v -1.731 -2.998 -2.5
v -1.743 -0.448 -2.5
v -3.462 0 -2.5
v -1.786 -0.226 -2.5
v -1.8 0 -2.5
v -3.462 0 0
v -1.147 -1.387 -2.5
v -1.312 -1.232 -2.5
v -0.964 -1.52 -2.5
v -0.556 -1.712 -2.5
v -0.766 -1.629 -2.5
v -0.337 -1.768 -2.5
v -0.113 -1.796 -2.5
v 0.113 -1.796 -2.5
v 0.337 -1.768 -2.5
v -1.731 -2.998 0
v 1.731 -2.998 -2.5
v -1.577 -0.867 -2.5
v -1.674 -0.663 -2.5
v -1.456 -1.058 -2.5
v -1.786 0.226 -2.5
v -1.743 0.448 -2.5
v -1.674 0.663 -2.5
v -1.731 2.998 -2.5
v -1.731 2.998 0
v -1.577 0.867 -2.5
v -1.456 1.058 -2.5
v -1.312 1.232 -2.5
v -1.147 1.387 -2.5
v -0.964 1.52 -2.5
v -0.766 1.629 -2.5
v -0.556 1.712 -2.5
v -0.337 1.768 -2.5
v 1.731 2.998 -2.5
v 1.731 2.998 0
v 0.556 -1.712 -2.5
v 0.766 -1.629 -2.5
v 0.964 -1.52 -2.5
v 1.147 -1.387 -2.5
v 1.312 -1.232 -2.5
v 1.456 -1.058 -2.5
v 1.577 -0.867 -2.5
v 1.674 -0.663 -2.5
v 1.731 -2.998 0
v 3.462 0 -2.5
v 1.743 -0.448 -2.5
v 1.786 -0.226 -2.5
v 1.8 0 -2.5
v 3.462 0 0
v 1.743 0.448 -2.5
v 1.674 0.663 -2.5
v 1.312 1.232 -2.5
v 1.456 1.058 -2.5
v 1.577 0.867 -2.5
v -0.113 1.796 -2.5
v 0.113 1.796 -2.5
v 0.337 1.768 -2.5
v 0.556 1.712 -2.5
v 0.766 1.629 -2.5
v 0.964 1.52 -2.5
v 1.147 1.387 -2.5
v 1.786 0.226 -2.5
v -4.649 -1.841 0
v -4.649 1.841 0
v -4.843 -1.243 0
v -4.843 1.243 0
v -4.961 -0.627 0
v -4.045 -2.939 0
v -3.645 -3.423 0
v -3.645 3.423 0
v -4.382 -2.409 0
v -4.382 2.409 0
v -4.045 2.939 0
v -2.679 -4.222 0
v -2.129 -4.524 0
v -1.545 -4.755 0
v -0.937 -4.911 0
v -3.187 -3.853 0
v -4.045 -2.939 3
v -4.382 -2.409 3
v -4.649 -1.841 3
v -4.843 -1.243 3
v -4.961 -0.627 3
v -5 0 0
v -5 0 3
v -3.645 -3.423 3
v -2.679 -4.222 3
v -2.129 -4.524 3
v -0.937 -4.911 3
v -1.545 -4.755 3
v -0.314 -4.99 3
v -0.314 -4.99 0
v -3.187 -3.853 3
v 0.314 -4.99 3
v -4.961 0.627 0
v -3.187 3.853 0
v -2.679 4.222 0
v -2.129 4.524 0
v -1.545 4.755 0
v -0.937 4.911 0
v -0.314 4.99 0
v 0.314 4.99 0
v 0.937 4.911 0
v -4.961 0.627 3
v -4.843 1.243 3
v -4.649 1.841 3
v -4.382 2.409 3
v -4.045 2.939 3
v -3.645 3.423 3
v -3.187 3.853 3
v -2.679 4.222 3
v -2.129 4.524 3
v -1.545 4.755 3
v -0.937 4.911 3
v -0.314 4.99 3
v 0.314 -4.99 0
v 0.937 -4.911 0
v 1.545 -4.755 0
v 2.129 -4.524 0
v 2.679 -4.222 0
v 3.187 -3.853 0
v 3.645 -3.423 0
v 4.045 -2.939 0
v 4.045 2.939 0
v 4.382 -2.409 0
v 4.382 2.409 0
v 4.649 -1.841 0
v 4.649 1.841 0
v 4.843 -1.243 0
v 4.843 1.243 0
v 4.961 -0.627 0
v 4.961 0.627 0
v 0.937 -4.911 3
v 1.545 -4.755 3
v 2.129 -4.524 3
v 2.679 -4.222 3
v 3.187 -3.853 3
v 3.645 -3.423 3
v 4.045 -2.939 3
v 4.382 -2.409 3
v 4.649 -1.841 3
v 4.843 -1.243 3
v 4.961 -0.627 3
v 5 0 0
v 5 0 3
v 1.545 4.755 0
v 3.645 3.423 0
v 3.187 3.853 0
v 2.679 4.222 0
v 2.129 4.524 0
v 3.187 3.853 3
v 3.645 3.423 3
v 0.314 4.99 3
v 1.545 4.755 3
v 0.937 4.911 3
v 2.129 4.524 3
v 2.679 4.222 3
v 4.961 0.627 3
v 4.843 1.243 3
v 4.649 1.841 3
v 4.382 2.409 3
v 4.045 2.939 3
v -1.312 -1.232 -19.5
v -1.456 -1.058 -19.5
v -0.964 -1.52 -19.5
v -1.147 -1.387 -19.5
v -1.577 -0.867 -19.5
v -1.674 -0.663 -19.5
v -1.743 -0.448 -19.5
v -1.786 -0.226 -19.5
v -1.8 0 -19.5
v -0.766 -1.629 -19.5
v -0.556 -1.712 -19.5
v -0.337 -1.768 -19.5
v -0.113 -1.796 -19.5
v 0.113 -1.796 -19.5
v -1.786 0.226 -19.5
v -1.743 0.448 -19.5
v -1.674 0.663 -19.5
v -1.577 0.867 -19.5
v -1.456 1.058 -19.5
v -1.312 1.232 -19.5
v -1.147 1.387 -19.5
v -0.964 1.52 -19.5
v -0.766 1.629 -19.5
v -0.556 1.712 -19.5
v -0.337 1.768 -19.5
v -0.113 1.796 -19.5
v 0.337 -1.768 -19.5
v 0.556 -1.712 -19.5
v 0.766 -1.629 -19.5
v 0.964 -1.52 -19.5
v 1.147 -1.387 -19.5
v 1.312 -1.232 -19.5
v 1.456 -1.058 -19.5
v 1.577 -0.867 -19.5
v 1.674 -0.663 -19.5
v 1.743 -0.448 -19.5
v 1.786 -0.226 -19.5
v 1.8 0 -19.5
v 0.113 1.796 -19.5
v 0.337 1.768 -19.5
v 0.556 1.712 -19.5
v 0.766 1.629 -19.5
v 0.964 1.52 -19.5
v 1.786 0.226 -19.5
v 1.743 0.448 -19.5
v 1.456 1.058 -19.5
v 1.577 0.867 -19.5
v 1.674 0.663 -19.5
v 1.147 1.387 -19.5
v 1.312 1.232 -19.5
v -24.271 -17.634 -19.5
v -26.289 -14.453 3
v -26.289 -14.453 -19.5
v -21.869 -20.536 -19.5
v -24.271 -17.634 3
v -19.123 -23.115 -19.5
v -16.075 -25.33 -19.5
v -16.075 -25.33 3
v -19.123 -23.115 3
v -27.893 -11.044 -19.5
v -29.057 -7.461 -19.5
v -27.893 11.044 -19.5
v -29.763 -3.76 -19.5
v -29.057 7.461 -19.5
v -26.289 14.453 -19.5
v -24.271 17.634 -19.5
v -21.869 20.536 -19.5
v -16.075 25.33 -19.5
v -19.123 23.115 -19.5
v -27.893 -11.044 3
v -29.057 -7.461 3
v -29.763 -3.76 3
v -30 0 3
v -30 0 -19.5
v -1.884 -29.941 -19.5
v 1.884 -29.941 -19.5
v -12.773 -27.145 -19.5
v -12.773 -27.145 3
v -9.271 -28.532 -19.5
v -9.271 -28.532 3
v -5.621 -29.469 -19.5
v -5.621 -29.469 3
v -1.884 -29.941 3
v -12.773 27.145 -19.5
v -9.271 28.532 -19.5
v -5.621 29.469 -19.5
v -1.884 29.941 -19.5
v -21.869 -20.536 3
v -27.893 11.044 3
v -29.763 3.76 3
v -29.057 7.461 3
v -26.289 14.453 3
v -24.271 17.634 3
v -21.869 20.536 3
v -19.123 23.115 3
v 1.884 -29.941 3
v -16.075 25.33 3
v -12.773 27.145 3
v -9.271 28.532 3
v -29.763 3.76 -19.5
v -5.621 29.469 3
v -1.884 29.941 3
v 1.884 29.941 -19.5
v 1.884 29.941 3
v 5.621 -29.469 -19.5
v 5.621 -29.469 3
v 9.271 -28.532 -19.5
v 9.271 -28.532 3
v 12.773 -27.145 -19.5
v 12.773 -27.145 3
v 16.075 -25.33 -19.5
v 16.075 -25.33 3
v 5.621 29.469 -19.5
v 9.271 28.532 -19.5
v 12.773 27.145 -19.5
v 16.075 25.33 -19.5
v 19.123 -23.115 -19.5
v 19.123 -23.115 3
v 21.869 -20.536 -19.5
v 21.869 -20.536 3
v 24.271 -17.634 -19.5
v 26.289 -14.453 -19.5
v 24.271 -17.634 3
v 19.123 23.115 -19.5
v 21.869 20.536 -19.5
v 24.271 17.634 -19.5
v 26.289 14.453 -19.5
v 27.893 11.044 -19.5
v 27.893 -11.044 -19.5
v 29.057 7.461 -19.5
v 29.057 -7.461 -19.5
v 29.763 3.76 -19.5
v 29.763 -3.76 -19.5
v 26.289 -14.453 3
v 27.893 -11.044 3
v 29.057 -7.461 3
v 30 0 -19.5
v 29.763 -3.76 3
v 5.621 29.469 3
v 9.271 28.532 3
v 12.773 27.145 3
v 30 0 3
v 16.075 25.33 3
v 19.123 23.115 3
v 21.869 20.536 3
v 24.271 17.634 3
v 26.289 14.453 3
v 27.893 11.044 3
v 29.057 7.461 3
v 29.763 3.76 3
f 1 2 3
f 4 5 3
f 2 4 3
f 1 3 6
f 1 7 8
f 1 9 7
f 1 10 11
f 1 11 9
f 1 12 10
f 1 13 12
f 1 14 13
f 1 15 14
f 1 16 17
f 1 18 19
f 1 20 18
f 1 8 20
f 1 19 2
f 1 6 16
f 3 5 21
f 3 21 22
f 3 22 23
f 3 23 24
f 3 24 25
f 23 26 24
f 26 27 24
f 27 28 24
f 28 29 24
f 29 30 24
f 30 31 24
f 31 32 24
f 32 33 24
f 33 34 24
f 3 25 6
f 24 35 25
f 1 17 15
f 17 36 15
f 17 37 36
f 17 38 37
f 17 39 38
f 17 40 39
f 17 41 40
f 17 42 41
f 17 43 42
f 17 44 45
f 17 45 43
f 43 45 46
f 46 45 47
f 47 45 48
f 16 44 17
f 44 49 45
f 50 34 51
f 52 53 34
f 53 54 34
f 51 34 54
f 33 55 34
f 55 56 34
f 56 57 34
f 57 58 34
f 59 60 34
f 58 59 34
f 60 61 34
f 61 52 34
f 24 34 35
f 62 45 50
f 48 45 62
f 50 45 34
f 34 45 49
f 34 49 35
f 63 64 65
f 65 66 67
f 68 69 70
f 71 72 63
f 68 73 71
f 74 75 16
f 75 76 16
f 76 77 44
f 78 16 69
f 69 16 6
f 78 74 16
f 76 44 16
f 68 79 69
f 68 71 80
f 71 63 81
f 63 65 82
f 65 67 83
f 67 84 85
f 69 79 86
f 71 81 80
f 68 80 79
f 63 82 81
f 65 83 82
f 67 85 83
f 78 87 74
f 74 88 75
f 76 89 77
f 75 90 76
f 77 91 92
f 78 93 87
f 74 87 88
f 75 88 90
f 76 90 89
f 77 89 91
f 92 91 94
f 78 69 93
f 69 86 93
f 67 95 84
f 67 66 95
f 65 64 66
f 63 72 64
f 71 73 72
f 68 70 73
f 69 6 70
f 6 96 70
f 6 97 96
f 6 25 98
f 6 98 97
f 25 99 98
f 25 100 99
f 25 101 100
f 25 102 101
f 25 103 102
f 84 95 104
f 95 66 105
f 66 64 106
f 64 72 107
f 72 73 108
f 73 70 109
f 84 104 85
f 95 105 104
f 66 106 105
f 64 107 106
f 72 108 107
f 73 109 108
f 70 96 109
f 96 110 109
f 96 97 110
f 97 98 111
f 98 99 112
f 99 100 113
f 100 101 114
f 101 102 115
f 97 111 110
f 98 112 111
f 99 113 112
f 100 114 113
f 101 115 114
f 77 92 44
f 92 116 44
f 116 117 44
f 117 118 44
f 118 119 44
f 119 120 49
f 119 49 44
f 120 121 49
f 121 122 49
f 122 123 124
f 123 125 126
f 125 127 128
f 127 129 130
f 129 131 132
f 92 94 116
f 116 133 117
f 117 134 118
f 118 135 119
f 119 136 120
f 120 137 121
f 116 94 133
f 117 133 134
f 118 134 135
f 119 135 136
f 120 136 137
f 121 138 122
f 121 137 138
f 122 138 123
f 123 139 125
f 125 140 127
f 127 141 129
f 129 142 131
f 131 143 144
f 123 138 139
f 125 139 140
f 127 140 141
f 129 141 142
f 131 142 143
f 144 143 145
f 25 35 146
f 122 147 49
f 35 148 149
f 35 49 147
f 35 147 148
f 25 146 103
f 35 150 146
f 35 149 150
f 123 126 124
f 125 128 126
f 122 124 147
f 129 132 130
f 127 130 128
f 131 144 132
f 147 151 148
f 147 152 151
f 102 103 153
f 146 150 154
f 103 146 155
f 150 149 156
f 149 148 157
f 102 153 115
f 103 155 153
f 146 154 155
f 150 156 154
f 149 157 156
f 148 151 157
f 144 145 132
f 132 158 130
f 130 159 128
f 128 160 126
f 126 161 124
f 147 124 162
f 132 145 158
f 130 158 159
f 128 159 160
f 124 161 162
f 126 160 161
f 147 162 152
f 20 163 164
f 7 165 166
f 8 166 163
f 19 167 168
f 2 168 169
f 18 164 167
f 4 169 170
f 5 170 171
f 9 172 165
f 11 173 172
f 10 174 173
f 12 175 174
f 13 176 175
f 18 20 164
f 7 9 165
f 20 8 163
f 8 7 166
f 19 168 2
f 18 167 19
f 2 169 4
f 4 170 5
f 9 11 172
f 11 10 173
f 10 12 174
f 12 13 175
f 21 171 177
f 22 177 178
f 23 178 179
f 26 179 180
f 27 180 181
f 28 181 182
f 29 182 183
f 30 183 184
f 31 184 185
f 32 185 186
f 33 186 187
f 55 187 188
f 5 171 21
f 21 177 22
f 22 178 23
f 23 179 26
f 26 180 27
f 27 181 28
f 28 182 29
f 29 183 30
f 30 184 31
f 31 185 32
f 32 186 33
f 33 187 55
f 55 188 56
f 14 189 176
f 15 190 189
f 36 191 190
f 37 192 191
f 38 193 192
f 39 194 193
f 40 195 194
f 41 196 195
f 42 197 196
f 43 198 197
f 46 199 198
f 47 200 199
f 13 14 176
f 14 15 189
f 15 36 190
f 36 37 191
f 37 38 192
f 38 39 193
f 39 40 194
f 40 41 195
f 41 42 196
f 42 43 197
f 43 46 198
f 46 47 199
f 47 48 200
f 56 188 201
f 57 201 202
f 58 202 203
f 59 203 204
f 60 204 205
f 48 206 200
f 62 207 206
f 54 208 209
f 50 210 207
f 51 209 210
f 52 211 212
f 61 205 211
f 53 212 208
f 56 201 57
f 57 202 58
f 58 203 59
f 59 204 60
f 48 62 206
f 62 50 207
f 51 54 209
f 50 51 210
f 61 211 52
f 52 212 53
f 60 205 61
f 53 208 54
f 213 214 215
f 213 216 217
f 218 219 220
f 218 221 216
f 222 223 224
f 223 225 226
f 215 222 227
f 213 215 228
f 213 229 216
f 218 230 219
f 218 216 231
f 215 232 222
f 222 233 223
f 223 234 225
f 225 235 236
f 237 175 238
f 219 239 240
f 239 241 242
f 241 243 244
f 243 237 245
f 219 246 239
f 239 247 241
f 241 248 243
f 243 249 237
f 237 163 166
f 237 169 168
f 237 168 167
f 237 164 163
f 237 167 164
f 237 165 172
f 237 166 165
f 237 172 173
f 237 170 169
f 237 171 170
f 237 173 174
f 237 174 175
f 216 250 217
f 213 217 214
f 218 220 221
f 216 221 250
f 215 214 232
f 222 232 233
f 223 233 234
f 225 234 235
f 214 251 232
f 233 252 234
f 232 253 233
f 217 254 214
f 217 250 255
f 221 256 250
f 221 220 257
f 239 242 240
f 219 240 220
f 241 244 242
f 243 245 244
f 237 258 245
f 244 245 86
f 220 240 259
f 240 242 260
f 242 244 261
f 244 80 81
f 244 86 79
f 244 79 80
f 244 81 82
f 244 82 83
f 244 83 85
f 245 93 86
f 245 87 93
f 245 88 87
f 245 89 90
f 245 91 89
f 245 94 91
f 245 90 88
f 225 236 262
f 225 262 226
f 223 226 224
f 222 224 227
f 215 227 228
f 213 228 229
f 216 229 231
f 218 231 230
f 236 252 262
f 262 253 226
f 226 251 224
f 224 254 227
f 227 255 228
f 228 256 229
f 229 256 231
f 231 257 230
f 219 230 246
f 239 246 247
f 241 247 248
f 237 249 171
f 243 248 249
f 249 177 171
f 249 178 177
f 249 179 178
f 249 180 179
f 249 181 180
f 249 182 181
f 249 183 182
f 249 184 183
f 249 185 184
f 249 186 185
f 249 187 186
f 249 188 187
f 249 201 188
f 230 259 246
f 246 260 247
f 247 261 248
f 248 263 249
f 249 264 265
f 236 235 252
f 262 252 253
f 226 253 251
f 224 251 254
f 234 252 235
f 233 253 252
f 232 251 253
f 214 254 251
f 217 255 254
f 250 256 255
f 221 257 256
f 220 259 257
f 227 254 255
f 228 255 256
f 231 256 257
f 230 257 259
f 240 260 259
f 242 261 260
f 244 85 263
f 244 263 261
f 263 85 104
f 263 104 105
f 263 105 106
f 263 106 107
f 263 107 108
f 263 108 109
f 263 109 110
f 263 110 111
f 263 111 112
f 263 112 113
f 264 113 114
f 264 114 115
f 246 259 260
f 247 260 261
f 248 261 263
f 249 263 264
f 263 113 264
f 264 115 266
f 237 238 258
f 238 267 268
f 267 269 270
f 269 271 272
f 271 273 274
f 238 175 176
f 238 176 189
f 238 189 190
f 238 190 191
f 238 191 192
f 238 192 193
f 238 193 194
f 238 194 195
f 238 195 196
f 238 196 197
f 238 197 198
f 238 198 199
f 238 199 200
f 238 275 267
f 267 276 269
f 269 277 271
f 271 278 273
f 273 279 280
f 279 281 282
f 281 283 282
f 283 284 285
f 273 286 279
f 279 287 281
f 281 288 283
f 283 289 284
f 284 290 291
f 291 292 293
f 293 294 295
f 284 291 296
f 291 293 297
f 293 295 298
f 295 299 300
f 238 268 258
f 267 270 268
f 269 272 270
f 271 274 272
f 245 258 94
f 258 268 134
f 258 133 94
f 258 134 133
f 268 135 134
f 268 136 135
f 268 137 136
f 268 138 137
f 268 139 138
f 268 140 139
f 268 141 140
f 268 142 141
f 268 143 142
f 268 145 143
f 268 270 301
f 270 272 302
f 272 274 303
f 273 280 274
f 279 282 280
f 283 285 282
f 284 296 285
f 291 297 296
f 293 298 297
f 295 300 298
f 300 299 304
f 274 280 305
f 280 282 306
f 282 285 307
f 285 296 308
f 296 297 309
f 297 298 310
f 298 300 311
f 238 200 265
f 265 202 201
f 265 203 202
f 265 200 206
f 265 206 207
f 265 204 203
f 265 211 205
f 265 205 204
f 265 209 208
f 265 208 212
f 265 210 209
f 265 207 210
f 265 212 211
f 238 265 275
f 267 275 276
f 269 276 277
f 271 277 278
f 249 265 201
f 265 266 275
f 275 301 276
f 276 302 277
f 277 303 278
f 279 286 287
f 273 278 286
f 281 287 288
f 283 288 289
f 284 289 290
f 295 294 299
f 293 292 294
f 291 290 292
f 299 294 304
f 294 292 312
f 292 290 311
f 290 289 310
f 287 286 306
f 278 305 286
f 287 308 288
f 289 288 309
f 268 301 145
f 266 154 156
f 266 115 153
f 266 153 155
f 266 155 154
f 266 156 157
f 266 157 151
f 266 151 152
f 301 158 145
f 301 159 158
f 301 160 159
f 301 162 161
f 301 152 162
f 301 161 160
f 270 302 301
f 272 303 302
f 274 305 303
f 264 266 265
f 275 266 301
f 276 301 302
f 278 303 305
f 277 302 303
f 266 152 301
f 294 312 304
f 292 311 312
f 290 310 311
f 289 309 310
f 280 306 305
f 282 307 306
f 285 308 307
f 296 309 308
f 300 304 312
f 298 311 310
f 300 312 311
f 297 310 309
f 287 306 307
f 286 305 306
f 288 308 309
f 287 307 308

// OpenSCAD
$fn = 50;


difference() {
	union() {
		translate(v = [0, 0, -19.5000000000]) {
			cylinder(h = 22.5000000000, r = 30.0000000000);
		}
	}
	union() {
		translate(v = [0, 0, 0]) {
			rotate(a = [0, 0, 0]) {
				difference() {
					union() {
						translate(v = [0, 0, -2.5000000000]) {
							linear_extrude(height = 2.5000000000) {
								polygon(points = [[3.4620000000, 0.0000000000], [1.7310000000, 2.9981799479], [-1.7310000000, 2.9981799479], [-3.4620000000, 0.0000000000], [-1.7310000000, -2.9981799479], [1.7310000000, -2.9981799479]]);
							}
						}
					}
					union();
				}
			}
		}
		#cylinder(h = 3, r = 5.0000000000);
		#translate(v = [0, 0, -100.0000000000]) {
			cylinder(h = 200, r = 1.8000000000);
		}
	}
}
